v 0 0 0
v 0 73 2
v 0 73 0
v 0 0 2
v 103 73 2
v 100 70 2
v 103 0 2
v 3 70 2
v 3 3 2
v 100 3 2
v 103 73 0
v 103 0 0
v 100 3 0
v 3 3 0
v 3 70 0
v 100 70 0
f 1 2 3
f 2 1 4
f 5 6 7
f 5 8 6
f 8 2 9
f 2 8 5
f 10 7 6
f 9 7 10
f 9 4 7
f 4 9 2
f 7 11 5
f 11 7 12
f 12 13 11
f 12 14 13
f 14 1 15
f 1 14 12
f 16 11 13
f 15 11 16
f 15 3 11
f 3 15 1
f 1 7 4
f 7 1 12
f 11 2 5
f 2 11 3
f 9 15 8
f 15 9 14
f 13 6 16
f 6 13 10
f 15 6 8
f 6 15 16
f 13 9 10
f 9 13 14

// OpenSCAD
c=[103,73,2];
t = 3;
t2 = 2 * t;
e = .1;
difference(){
 cube(c);
 translate([t,t,-e])
 cube(c + [-t2,-t2,e*2]);
}
